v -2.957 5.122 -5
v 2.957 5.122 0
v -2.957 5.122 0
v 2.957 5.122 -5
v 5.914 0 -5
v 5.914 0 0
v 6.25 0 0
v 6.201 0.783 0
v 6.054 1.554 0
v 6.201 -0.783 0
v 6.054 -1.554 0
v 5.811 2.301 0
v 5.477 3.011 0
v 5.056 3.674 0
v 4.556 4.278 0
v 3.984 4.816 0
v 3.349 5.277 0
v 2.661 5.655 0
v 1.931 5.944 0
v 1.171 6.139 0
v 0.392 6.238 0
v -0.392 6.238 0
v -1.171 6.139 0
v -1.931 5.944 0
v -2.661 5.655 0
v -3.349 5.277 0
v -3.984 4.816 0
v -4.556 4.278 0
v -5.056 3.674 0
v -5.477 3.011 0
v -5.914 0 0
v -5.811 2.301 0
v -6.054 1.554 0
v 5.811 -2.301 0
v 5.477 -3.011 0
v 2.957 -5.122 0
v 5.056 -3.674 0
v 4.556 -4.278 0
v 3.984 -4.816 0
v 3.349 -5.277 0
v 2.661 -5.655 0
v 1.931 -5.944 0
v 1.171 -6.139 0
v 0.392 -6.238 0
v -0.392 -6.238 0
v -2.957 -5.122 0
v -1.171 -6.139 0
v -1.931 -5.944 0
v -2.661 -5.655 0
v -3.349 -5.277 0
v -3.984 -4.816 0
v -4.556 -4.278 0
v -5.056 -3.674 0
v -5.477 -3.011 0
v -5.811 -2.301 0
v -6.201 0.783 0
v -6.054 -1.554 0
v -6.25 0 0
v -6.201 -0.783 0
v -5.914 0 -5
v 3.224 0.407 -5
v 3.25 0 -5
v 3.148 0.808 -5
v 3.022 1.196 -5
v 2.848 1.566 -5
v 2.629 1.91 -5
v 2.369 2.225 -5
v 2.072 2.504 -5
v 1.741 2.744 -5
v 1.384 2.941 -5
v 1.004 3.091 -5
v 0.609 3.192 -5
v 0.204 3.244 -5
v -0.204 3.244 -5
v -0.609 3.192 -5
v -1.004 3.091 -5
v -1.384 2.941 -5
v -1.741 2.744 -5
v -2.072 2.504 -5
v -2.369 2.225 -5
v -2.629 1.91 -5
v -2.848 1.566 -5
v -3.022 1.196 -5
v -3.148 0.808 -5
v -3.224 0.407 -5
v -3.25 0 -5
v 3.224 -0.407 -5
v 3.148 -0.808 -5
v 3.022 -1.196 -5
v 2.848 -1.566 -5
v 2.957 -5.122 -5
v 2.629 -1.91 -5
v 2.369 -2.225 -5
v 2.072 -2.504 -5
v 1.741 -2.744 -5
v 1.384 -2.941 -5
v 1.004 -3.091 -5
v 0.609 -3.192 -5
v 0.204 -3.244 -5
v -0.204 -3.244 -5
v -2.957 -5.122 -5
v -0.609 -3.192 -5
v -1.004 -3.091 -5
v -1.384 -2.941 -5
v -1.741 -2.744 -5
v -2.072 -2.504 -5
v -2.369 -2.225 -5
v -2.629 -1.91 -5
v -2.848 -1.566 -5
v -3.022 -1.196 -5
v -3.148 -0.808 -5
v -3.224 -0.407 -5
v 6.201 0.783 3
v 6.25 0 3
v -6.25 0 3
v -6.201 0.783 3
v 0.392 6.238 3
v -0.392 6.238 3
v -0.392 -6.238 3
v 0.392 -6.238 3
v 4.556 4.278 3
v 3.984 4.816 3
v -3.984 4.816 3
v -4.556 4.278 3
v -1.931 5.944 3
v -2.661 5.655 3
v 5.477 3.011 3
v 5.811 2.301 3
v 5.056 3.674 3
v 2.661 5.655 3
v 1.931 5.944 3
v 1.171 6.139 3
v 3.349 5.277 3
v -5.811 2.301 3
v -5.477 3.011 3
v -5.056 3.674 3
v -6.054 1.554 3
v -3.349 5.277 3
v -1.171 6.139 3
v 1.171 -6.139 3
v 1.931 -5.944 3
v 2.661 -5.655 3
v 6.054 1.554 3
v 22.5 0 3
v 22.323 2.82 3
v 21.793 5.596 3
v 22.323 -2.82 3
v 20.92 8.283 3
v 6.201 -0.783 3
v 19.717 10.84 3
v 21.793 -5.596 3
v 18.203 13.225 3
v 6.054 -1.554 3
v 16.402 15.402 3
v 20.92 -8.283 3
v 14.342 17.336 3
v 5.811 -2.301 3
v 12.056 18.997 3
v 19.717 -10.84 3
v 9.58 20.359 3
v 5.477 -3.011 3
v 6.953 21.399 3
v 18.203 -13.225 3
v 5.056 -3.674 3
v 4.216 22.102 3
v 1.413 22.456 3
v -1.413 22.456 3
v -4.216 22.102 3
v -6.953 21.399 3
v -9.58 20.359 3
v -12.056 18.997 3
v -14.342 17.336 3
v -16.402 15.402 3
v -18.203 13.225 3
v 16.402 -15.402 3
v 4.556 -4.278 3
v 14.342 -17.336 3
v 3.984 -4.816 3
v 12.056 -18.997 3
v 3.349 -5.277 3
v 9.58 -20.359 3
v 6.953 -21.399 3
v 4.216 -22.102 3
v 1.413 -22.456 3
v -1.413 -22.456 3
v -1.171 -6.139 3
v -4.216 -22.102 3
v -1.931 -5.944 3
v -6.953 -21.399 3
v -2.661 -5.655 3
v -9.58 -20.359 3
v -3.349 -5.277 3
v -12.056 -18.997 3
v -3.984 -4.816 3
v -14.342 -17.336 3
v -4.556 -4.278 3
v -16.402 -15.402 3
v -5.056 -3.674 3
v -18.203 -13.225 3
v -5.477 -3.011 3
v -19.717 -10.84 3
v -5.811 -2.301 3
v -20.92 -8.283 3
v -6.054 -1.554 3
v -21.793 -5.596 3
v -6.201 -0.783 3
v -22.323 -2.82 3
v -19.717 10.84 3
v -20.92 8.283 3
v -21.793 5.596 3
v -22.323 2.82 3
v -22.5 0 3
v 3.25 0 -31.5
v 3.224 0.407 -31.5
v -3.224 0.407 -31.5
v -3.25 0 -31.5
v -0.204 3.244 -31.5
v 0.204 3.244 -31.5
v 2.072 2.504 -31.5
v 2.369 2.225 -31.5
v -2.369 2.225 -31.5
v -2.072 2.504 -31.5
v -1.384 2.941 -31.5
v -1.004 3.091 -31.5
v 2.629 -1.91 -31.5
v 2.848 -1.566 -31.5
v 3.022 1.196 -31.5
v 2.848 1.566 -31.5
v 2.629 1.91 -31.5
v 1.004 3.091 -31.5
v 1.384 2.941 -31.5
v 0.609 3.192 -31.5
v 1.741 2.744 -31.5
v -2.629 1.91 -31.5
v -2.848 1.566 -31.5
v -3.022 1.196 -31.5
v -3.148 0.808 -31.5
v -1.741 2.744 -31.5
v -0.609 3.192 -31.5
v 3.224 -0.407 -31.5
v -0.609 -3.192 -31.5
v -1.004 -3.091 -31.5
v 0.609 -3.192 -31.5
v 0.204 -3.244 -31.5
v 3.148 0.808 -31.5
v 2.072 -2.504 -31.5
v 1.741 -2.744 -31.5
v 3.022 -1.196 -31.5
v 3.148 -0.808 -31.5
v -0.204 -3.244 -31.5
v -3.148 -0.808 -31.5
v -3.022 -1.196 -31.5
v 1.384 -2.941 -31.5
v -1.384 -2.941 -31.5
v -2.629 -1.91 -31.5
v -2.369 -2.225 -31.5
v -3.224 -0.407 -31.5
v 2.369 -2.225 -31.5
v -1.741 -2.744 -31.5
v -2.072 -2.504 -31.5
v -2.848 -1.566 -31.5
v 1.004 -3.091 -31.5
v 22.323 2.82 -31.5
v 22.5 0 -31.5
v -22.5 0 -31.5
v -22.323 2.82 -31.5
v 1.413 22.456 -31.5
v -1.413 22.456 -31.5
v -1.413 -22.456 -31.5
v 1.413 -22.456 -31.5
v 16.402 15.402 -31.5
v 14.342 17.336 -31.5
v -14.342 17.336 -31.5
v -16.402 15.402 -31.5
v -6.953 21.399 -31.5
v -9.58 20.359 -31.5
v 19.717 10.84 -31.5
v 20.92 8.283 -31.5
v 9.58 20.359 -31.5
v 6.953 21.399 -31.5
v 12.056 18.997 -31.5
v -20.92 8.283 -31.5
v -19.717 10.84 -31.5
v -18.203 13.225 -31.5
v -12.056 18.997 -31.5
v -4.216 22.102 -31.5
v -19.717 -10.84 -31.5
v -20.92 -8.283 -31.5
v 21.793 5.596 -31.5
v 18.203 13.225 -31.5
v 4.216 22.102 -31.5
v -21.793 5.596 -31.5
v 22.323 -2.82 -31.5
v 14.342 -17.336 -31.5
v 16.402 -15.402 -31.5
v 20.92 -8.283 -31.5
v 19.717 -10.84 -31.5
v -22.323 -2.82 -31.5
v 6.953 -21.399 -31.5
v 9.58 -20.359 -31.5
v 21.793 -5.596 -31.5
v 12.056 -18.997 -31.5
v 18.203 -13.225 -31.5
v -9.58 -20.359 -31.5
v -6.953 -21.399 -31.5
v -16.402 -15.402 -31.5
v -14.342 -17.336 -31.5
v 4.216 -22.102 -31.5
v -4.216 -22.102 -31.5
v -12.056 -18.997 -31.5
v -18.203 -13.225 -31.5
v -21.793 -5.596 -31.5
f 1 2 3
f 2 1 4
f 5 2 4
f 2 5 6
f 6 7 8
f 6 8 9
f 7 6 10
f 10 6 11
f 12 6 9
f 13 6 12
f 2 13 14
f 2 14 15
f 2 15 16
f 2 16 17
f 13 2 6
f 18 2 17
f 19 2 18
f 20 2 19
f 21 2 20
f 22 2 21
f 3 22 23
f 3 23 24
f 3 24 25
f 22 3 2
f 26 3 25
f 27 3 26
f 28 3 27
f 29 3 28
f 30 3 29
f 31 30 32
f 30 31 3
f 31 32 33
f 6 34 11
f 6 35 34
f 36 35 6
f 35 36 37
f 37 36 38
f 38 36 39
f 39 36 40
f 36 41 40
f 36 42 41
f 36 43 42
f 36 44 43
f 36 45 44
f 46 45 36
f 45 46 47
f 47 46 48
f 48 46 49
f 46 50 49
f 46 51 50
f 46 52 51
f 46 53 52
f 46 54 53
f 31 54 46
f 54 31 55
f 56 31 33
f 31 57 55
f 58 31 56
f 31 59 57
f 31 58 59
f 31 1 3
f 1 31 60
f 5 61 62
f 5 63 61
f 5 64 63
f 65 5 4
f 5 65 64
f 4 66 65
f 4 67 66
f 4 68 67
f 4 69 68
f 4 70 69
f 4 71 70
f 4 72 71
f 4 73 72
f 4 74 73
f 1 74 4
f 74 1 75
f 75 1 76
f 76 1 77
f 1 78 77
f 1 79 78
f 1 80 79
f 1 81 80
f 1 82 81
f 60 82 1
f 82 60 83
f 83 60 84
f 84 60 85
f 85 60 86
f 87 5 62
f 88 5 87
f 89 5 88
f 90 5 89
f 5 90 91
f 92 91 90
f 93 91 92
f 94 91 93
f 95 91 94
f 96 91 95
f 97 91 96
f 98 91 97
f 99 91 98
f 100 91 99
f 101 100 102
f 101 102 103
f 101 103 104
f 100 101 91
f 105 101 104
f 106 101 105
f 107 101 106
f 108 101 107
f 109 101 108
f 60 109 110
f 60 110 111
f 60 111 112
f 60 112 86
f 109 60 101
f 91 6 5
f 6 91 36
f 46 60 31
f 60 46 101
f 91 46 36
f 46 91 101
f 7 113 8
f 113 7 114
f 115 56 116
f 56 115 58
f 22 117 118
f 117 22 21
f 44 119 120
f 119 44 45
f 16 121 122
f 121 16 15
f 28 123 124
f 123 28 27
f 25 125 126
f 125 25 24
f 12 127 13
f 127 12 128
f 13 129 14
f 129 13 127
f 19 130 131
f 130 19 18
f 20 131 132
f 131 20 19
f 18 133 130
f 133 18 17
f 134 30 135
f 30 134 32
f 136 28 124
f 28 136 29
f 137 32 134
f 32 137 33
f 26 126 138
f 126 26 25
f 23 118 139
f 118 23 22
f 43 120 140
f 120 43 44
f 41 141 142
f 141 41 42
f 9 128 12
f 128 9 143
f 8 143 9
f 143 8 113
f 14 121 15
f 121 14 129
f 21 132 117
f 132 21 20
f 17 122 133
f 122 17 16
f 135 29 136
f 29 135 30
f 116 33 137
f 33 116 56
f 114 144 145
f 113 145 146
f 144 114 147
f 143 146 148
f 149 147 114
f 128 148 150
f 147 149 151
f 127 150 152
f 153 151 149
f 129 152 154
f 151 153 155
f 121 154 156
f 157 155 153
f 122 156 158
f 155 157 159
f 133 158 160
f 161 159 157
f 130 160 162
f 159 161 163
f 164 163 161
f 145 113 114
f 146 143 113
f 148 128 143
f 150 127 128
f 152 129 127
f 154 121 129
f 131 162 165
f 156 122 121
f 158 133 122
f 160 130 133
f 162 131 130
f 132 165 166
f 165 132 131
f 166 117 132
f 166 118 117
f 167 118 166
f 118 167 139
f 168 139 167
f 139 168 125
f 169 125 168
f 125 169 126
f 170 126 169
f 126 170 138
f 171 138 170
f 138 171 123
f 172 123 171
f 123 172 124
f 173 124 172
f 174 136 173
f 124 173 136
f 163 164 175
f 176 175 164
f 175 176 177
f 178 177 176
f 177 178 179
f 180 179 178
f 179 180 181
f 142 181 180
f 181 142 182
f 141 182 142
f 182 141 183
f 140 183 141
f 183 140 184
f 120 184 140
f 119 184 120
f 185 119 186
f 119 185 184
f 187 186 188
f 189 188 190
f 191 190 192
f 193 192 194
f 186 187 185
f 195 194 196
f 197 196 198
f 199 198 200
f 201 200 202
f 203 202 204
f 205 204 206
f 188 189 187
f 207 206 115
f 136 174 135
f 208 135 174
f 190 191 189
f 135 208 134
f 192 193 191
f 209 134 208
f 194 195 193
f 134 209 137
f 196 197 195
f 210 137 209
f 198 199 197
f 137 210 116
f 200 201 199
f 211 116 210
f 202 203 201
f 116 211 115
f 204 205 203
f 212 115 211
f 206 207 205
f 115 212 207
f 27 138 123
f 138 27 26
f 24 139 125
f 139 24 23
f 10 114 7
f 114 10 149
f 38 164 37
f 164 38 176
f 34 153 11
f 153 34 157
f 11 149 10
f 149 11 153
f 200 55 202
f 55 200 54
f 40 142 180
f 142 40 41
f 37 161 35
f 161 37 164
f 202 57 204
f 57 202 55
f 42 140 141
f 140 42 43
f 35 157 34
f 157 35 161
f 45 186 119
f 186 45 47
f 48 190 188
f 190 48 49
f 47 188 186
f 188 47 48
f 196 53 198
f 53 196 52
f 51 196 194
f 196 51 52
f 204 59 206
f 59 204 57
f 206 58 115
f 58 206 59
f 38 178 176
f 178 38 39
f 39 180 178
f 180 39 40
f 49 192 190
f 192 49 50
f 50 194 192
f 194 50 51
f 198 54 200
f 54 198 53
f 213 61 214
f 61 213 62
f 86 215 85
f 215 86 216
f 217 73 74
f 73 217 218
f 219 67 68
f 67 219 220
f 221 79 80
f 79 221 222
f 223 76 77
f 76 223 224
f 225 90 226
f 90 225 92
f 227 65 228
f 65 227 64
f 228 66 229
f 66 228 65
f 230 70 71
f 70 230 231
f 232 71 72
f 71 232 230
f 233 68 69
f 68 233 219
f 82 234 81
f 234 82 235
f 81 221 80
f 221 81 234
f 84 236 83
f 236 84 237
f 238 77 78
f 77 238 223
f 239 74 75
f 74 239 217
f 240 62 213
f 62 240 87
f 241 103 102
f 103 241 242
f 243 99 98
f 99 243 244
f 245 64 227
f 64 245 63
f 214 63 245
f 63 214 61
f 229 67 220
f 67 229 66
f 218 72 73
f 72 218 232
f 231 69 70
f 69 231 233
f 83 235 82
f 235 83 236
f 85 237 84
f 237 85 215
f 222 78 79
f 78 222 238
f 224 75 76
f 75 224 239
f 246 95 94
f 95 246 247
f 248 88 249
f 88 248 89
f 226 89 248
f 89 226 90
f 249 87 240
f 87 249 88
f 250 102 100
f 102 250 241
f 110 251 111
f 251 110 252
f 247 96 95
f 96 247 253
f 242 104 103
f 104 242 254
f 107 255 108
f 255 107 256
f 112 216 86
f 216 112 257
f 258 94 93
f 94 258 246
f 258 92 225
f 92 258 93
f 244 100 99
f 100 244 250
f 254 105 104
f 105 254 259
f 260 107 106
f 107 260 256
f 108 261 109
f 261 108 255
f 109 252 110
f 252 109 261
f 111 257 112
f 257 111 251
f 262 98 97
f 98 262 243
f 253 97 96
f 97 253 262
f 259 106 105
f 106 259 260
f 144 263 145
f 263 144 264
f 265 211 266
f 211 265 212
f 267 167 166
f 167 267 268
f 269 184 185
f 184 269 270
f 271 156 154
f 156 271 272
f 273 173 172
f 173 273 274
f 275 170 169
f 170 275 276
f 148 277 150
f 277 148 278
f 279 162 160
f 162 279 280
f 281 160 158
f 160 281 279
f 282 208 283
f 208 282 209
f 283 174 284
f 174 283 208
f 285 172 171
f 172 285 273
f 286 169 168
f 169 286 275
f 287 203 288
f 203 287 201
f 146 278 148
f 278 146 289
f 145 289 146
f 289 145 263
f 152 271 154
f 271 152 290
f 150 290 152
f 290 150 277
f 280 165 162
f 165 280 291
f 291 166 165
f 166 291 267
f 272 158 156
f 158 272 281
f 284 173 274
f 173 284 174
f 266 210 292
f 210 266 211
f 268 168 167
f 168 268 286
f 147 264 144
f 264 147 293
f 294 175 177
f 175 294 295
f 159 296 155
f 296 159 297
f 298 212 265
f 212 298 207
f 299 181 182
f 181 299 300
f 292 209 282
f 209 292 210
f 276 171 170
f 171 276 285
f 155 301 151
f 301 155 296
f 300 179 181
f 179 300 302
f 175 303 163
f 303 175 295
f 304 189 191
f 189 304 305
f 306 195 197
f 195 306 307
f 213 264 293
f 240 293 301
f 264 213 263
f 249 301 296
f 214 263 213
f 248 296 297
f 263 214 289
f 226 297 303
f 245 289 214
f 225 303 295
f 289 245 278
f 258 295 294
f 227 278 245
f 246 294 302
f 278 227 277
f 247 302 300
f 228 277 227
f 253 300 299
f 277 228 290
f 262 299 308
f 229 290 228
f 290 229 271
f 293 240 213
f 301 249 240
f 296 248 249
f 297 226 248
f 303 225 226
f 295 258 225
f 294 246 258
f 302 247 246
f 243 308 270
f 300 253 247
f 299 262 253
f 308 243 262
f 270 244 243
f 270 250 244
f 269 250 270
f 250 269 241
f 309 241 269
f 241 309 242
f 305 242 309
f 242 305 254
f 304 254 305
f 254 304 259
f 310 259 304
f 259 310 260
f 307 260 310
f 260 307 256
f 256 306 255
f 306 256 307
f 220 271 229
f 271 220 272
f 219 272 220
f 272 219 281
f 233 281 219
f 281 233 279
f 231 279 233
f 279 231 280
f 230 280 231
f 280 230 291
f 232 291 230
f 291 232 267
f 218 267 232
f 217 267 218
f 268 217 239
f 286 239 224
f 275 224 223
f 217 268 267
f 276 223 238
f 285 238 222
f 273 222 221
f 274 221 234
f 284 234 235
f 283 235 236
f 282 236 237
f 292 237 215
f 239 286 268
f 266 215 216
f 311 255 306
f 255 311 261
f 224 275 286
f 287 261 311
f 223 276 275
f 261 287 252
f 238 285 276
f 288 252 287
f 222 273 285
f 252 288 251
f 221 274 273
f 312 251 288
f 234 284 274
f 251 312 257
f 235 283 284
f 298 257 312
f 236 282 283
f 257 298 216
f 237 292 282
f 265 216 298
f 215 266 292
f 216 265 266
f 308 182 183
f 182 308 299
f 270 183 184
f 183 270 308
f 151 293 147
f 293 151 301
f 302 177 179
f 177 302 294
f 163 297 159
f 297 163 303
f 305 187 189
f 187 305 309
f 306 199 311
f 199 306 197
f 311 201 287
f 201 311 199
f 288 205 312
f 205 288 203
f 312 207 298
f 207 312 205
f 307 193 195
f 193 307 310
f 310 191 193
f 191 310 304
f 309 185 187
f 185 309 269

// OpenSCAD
$fn = 50;

difference() {
	union() {
		translate(v = [0, 0, -31.5]) {
			cylinder(h = 34.5, r = 22.5);
		}
	}
	union() {
		translate(v = [0, 0, 0]) {
			rotate(a = [0, 0, 0]) {
				difference() {
					union() {
						translate(v = [0, 0, -5]) {
							linear_extrude(height = 5) {
								polygon(points = [[5.914249999999999, 0.0], [2.957125, 5.1218907443321156], [-2.9571249999999982, 5.1218907443321156], [-5.914249999999999, 7.242867331857232e-16], [-2.9571250000000022, -5.121890744332115], [2.9571249999999956, -5.121890744332118]]);
							}
						}
					}
					union();
				}
			}
		}
		#cylinder(h = 3, r = 6.25);
		#translate(v = [0, 0, -100.0]) {
			cylinder(h = 200, r = 3.25);
		}
	}
}
